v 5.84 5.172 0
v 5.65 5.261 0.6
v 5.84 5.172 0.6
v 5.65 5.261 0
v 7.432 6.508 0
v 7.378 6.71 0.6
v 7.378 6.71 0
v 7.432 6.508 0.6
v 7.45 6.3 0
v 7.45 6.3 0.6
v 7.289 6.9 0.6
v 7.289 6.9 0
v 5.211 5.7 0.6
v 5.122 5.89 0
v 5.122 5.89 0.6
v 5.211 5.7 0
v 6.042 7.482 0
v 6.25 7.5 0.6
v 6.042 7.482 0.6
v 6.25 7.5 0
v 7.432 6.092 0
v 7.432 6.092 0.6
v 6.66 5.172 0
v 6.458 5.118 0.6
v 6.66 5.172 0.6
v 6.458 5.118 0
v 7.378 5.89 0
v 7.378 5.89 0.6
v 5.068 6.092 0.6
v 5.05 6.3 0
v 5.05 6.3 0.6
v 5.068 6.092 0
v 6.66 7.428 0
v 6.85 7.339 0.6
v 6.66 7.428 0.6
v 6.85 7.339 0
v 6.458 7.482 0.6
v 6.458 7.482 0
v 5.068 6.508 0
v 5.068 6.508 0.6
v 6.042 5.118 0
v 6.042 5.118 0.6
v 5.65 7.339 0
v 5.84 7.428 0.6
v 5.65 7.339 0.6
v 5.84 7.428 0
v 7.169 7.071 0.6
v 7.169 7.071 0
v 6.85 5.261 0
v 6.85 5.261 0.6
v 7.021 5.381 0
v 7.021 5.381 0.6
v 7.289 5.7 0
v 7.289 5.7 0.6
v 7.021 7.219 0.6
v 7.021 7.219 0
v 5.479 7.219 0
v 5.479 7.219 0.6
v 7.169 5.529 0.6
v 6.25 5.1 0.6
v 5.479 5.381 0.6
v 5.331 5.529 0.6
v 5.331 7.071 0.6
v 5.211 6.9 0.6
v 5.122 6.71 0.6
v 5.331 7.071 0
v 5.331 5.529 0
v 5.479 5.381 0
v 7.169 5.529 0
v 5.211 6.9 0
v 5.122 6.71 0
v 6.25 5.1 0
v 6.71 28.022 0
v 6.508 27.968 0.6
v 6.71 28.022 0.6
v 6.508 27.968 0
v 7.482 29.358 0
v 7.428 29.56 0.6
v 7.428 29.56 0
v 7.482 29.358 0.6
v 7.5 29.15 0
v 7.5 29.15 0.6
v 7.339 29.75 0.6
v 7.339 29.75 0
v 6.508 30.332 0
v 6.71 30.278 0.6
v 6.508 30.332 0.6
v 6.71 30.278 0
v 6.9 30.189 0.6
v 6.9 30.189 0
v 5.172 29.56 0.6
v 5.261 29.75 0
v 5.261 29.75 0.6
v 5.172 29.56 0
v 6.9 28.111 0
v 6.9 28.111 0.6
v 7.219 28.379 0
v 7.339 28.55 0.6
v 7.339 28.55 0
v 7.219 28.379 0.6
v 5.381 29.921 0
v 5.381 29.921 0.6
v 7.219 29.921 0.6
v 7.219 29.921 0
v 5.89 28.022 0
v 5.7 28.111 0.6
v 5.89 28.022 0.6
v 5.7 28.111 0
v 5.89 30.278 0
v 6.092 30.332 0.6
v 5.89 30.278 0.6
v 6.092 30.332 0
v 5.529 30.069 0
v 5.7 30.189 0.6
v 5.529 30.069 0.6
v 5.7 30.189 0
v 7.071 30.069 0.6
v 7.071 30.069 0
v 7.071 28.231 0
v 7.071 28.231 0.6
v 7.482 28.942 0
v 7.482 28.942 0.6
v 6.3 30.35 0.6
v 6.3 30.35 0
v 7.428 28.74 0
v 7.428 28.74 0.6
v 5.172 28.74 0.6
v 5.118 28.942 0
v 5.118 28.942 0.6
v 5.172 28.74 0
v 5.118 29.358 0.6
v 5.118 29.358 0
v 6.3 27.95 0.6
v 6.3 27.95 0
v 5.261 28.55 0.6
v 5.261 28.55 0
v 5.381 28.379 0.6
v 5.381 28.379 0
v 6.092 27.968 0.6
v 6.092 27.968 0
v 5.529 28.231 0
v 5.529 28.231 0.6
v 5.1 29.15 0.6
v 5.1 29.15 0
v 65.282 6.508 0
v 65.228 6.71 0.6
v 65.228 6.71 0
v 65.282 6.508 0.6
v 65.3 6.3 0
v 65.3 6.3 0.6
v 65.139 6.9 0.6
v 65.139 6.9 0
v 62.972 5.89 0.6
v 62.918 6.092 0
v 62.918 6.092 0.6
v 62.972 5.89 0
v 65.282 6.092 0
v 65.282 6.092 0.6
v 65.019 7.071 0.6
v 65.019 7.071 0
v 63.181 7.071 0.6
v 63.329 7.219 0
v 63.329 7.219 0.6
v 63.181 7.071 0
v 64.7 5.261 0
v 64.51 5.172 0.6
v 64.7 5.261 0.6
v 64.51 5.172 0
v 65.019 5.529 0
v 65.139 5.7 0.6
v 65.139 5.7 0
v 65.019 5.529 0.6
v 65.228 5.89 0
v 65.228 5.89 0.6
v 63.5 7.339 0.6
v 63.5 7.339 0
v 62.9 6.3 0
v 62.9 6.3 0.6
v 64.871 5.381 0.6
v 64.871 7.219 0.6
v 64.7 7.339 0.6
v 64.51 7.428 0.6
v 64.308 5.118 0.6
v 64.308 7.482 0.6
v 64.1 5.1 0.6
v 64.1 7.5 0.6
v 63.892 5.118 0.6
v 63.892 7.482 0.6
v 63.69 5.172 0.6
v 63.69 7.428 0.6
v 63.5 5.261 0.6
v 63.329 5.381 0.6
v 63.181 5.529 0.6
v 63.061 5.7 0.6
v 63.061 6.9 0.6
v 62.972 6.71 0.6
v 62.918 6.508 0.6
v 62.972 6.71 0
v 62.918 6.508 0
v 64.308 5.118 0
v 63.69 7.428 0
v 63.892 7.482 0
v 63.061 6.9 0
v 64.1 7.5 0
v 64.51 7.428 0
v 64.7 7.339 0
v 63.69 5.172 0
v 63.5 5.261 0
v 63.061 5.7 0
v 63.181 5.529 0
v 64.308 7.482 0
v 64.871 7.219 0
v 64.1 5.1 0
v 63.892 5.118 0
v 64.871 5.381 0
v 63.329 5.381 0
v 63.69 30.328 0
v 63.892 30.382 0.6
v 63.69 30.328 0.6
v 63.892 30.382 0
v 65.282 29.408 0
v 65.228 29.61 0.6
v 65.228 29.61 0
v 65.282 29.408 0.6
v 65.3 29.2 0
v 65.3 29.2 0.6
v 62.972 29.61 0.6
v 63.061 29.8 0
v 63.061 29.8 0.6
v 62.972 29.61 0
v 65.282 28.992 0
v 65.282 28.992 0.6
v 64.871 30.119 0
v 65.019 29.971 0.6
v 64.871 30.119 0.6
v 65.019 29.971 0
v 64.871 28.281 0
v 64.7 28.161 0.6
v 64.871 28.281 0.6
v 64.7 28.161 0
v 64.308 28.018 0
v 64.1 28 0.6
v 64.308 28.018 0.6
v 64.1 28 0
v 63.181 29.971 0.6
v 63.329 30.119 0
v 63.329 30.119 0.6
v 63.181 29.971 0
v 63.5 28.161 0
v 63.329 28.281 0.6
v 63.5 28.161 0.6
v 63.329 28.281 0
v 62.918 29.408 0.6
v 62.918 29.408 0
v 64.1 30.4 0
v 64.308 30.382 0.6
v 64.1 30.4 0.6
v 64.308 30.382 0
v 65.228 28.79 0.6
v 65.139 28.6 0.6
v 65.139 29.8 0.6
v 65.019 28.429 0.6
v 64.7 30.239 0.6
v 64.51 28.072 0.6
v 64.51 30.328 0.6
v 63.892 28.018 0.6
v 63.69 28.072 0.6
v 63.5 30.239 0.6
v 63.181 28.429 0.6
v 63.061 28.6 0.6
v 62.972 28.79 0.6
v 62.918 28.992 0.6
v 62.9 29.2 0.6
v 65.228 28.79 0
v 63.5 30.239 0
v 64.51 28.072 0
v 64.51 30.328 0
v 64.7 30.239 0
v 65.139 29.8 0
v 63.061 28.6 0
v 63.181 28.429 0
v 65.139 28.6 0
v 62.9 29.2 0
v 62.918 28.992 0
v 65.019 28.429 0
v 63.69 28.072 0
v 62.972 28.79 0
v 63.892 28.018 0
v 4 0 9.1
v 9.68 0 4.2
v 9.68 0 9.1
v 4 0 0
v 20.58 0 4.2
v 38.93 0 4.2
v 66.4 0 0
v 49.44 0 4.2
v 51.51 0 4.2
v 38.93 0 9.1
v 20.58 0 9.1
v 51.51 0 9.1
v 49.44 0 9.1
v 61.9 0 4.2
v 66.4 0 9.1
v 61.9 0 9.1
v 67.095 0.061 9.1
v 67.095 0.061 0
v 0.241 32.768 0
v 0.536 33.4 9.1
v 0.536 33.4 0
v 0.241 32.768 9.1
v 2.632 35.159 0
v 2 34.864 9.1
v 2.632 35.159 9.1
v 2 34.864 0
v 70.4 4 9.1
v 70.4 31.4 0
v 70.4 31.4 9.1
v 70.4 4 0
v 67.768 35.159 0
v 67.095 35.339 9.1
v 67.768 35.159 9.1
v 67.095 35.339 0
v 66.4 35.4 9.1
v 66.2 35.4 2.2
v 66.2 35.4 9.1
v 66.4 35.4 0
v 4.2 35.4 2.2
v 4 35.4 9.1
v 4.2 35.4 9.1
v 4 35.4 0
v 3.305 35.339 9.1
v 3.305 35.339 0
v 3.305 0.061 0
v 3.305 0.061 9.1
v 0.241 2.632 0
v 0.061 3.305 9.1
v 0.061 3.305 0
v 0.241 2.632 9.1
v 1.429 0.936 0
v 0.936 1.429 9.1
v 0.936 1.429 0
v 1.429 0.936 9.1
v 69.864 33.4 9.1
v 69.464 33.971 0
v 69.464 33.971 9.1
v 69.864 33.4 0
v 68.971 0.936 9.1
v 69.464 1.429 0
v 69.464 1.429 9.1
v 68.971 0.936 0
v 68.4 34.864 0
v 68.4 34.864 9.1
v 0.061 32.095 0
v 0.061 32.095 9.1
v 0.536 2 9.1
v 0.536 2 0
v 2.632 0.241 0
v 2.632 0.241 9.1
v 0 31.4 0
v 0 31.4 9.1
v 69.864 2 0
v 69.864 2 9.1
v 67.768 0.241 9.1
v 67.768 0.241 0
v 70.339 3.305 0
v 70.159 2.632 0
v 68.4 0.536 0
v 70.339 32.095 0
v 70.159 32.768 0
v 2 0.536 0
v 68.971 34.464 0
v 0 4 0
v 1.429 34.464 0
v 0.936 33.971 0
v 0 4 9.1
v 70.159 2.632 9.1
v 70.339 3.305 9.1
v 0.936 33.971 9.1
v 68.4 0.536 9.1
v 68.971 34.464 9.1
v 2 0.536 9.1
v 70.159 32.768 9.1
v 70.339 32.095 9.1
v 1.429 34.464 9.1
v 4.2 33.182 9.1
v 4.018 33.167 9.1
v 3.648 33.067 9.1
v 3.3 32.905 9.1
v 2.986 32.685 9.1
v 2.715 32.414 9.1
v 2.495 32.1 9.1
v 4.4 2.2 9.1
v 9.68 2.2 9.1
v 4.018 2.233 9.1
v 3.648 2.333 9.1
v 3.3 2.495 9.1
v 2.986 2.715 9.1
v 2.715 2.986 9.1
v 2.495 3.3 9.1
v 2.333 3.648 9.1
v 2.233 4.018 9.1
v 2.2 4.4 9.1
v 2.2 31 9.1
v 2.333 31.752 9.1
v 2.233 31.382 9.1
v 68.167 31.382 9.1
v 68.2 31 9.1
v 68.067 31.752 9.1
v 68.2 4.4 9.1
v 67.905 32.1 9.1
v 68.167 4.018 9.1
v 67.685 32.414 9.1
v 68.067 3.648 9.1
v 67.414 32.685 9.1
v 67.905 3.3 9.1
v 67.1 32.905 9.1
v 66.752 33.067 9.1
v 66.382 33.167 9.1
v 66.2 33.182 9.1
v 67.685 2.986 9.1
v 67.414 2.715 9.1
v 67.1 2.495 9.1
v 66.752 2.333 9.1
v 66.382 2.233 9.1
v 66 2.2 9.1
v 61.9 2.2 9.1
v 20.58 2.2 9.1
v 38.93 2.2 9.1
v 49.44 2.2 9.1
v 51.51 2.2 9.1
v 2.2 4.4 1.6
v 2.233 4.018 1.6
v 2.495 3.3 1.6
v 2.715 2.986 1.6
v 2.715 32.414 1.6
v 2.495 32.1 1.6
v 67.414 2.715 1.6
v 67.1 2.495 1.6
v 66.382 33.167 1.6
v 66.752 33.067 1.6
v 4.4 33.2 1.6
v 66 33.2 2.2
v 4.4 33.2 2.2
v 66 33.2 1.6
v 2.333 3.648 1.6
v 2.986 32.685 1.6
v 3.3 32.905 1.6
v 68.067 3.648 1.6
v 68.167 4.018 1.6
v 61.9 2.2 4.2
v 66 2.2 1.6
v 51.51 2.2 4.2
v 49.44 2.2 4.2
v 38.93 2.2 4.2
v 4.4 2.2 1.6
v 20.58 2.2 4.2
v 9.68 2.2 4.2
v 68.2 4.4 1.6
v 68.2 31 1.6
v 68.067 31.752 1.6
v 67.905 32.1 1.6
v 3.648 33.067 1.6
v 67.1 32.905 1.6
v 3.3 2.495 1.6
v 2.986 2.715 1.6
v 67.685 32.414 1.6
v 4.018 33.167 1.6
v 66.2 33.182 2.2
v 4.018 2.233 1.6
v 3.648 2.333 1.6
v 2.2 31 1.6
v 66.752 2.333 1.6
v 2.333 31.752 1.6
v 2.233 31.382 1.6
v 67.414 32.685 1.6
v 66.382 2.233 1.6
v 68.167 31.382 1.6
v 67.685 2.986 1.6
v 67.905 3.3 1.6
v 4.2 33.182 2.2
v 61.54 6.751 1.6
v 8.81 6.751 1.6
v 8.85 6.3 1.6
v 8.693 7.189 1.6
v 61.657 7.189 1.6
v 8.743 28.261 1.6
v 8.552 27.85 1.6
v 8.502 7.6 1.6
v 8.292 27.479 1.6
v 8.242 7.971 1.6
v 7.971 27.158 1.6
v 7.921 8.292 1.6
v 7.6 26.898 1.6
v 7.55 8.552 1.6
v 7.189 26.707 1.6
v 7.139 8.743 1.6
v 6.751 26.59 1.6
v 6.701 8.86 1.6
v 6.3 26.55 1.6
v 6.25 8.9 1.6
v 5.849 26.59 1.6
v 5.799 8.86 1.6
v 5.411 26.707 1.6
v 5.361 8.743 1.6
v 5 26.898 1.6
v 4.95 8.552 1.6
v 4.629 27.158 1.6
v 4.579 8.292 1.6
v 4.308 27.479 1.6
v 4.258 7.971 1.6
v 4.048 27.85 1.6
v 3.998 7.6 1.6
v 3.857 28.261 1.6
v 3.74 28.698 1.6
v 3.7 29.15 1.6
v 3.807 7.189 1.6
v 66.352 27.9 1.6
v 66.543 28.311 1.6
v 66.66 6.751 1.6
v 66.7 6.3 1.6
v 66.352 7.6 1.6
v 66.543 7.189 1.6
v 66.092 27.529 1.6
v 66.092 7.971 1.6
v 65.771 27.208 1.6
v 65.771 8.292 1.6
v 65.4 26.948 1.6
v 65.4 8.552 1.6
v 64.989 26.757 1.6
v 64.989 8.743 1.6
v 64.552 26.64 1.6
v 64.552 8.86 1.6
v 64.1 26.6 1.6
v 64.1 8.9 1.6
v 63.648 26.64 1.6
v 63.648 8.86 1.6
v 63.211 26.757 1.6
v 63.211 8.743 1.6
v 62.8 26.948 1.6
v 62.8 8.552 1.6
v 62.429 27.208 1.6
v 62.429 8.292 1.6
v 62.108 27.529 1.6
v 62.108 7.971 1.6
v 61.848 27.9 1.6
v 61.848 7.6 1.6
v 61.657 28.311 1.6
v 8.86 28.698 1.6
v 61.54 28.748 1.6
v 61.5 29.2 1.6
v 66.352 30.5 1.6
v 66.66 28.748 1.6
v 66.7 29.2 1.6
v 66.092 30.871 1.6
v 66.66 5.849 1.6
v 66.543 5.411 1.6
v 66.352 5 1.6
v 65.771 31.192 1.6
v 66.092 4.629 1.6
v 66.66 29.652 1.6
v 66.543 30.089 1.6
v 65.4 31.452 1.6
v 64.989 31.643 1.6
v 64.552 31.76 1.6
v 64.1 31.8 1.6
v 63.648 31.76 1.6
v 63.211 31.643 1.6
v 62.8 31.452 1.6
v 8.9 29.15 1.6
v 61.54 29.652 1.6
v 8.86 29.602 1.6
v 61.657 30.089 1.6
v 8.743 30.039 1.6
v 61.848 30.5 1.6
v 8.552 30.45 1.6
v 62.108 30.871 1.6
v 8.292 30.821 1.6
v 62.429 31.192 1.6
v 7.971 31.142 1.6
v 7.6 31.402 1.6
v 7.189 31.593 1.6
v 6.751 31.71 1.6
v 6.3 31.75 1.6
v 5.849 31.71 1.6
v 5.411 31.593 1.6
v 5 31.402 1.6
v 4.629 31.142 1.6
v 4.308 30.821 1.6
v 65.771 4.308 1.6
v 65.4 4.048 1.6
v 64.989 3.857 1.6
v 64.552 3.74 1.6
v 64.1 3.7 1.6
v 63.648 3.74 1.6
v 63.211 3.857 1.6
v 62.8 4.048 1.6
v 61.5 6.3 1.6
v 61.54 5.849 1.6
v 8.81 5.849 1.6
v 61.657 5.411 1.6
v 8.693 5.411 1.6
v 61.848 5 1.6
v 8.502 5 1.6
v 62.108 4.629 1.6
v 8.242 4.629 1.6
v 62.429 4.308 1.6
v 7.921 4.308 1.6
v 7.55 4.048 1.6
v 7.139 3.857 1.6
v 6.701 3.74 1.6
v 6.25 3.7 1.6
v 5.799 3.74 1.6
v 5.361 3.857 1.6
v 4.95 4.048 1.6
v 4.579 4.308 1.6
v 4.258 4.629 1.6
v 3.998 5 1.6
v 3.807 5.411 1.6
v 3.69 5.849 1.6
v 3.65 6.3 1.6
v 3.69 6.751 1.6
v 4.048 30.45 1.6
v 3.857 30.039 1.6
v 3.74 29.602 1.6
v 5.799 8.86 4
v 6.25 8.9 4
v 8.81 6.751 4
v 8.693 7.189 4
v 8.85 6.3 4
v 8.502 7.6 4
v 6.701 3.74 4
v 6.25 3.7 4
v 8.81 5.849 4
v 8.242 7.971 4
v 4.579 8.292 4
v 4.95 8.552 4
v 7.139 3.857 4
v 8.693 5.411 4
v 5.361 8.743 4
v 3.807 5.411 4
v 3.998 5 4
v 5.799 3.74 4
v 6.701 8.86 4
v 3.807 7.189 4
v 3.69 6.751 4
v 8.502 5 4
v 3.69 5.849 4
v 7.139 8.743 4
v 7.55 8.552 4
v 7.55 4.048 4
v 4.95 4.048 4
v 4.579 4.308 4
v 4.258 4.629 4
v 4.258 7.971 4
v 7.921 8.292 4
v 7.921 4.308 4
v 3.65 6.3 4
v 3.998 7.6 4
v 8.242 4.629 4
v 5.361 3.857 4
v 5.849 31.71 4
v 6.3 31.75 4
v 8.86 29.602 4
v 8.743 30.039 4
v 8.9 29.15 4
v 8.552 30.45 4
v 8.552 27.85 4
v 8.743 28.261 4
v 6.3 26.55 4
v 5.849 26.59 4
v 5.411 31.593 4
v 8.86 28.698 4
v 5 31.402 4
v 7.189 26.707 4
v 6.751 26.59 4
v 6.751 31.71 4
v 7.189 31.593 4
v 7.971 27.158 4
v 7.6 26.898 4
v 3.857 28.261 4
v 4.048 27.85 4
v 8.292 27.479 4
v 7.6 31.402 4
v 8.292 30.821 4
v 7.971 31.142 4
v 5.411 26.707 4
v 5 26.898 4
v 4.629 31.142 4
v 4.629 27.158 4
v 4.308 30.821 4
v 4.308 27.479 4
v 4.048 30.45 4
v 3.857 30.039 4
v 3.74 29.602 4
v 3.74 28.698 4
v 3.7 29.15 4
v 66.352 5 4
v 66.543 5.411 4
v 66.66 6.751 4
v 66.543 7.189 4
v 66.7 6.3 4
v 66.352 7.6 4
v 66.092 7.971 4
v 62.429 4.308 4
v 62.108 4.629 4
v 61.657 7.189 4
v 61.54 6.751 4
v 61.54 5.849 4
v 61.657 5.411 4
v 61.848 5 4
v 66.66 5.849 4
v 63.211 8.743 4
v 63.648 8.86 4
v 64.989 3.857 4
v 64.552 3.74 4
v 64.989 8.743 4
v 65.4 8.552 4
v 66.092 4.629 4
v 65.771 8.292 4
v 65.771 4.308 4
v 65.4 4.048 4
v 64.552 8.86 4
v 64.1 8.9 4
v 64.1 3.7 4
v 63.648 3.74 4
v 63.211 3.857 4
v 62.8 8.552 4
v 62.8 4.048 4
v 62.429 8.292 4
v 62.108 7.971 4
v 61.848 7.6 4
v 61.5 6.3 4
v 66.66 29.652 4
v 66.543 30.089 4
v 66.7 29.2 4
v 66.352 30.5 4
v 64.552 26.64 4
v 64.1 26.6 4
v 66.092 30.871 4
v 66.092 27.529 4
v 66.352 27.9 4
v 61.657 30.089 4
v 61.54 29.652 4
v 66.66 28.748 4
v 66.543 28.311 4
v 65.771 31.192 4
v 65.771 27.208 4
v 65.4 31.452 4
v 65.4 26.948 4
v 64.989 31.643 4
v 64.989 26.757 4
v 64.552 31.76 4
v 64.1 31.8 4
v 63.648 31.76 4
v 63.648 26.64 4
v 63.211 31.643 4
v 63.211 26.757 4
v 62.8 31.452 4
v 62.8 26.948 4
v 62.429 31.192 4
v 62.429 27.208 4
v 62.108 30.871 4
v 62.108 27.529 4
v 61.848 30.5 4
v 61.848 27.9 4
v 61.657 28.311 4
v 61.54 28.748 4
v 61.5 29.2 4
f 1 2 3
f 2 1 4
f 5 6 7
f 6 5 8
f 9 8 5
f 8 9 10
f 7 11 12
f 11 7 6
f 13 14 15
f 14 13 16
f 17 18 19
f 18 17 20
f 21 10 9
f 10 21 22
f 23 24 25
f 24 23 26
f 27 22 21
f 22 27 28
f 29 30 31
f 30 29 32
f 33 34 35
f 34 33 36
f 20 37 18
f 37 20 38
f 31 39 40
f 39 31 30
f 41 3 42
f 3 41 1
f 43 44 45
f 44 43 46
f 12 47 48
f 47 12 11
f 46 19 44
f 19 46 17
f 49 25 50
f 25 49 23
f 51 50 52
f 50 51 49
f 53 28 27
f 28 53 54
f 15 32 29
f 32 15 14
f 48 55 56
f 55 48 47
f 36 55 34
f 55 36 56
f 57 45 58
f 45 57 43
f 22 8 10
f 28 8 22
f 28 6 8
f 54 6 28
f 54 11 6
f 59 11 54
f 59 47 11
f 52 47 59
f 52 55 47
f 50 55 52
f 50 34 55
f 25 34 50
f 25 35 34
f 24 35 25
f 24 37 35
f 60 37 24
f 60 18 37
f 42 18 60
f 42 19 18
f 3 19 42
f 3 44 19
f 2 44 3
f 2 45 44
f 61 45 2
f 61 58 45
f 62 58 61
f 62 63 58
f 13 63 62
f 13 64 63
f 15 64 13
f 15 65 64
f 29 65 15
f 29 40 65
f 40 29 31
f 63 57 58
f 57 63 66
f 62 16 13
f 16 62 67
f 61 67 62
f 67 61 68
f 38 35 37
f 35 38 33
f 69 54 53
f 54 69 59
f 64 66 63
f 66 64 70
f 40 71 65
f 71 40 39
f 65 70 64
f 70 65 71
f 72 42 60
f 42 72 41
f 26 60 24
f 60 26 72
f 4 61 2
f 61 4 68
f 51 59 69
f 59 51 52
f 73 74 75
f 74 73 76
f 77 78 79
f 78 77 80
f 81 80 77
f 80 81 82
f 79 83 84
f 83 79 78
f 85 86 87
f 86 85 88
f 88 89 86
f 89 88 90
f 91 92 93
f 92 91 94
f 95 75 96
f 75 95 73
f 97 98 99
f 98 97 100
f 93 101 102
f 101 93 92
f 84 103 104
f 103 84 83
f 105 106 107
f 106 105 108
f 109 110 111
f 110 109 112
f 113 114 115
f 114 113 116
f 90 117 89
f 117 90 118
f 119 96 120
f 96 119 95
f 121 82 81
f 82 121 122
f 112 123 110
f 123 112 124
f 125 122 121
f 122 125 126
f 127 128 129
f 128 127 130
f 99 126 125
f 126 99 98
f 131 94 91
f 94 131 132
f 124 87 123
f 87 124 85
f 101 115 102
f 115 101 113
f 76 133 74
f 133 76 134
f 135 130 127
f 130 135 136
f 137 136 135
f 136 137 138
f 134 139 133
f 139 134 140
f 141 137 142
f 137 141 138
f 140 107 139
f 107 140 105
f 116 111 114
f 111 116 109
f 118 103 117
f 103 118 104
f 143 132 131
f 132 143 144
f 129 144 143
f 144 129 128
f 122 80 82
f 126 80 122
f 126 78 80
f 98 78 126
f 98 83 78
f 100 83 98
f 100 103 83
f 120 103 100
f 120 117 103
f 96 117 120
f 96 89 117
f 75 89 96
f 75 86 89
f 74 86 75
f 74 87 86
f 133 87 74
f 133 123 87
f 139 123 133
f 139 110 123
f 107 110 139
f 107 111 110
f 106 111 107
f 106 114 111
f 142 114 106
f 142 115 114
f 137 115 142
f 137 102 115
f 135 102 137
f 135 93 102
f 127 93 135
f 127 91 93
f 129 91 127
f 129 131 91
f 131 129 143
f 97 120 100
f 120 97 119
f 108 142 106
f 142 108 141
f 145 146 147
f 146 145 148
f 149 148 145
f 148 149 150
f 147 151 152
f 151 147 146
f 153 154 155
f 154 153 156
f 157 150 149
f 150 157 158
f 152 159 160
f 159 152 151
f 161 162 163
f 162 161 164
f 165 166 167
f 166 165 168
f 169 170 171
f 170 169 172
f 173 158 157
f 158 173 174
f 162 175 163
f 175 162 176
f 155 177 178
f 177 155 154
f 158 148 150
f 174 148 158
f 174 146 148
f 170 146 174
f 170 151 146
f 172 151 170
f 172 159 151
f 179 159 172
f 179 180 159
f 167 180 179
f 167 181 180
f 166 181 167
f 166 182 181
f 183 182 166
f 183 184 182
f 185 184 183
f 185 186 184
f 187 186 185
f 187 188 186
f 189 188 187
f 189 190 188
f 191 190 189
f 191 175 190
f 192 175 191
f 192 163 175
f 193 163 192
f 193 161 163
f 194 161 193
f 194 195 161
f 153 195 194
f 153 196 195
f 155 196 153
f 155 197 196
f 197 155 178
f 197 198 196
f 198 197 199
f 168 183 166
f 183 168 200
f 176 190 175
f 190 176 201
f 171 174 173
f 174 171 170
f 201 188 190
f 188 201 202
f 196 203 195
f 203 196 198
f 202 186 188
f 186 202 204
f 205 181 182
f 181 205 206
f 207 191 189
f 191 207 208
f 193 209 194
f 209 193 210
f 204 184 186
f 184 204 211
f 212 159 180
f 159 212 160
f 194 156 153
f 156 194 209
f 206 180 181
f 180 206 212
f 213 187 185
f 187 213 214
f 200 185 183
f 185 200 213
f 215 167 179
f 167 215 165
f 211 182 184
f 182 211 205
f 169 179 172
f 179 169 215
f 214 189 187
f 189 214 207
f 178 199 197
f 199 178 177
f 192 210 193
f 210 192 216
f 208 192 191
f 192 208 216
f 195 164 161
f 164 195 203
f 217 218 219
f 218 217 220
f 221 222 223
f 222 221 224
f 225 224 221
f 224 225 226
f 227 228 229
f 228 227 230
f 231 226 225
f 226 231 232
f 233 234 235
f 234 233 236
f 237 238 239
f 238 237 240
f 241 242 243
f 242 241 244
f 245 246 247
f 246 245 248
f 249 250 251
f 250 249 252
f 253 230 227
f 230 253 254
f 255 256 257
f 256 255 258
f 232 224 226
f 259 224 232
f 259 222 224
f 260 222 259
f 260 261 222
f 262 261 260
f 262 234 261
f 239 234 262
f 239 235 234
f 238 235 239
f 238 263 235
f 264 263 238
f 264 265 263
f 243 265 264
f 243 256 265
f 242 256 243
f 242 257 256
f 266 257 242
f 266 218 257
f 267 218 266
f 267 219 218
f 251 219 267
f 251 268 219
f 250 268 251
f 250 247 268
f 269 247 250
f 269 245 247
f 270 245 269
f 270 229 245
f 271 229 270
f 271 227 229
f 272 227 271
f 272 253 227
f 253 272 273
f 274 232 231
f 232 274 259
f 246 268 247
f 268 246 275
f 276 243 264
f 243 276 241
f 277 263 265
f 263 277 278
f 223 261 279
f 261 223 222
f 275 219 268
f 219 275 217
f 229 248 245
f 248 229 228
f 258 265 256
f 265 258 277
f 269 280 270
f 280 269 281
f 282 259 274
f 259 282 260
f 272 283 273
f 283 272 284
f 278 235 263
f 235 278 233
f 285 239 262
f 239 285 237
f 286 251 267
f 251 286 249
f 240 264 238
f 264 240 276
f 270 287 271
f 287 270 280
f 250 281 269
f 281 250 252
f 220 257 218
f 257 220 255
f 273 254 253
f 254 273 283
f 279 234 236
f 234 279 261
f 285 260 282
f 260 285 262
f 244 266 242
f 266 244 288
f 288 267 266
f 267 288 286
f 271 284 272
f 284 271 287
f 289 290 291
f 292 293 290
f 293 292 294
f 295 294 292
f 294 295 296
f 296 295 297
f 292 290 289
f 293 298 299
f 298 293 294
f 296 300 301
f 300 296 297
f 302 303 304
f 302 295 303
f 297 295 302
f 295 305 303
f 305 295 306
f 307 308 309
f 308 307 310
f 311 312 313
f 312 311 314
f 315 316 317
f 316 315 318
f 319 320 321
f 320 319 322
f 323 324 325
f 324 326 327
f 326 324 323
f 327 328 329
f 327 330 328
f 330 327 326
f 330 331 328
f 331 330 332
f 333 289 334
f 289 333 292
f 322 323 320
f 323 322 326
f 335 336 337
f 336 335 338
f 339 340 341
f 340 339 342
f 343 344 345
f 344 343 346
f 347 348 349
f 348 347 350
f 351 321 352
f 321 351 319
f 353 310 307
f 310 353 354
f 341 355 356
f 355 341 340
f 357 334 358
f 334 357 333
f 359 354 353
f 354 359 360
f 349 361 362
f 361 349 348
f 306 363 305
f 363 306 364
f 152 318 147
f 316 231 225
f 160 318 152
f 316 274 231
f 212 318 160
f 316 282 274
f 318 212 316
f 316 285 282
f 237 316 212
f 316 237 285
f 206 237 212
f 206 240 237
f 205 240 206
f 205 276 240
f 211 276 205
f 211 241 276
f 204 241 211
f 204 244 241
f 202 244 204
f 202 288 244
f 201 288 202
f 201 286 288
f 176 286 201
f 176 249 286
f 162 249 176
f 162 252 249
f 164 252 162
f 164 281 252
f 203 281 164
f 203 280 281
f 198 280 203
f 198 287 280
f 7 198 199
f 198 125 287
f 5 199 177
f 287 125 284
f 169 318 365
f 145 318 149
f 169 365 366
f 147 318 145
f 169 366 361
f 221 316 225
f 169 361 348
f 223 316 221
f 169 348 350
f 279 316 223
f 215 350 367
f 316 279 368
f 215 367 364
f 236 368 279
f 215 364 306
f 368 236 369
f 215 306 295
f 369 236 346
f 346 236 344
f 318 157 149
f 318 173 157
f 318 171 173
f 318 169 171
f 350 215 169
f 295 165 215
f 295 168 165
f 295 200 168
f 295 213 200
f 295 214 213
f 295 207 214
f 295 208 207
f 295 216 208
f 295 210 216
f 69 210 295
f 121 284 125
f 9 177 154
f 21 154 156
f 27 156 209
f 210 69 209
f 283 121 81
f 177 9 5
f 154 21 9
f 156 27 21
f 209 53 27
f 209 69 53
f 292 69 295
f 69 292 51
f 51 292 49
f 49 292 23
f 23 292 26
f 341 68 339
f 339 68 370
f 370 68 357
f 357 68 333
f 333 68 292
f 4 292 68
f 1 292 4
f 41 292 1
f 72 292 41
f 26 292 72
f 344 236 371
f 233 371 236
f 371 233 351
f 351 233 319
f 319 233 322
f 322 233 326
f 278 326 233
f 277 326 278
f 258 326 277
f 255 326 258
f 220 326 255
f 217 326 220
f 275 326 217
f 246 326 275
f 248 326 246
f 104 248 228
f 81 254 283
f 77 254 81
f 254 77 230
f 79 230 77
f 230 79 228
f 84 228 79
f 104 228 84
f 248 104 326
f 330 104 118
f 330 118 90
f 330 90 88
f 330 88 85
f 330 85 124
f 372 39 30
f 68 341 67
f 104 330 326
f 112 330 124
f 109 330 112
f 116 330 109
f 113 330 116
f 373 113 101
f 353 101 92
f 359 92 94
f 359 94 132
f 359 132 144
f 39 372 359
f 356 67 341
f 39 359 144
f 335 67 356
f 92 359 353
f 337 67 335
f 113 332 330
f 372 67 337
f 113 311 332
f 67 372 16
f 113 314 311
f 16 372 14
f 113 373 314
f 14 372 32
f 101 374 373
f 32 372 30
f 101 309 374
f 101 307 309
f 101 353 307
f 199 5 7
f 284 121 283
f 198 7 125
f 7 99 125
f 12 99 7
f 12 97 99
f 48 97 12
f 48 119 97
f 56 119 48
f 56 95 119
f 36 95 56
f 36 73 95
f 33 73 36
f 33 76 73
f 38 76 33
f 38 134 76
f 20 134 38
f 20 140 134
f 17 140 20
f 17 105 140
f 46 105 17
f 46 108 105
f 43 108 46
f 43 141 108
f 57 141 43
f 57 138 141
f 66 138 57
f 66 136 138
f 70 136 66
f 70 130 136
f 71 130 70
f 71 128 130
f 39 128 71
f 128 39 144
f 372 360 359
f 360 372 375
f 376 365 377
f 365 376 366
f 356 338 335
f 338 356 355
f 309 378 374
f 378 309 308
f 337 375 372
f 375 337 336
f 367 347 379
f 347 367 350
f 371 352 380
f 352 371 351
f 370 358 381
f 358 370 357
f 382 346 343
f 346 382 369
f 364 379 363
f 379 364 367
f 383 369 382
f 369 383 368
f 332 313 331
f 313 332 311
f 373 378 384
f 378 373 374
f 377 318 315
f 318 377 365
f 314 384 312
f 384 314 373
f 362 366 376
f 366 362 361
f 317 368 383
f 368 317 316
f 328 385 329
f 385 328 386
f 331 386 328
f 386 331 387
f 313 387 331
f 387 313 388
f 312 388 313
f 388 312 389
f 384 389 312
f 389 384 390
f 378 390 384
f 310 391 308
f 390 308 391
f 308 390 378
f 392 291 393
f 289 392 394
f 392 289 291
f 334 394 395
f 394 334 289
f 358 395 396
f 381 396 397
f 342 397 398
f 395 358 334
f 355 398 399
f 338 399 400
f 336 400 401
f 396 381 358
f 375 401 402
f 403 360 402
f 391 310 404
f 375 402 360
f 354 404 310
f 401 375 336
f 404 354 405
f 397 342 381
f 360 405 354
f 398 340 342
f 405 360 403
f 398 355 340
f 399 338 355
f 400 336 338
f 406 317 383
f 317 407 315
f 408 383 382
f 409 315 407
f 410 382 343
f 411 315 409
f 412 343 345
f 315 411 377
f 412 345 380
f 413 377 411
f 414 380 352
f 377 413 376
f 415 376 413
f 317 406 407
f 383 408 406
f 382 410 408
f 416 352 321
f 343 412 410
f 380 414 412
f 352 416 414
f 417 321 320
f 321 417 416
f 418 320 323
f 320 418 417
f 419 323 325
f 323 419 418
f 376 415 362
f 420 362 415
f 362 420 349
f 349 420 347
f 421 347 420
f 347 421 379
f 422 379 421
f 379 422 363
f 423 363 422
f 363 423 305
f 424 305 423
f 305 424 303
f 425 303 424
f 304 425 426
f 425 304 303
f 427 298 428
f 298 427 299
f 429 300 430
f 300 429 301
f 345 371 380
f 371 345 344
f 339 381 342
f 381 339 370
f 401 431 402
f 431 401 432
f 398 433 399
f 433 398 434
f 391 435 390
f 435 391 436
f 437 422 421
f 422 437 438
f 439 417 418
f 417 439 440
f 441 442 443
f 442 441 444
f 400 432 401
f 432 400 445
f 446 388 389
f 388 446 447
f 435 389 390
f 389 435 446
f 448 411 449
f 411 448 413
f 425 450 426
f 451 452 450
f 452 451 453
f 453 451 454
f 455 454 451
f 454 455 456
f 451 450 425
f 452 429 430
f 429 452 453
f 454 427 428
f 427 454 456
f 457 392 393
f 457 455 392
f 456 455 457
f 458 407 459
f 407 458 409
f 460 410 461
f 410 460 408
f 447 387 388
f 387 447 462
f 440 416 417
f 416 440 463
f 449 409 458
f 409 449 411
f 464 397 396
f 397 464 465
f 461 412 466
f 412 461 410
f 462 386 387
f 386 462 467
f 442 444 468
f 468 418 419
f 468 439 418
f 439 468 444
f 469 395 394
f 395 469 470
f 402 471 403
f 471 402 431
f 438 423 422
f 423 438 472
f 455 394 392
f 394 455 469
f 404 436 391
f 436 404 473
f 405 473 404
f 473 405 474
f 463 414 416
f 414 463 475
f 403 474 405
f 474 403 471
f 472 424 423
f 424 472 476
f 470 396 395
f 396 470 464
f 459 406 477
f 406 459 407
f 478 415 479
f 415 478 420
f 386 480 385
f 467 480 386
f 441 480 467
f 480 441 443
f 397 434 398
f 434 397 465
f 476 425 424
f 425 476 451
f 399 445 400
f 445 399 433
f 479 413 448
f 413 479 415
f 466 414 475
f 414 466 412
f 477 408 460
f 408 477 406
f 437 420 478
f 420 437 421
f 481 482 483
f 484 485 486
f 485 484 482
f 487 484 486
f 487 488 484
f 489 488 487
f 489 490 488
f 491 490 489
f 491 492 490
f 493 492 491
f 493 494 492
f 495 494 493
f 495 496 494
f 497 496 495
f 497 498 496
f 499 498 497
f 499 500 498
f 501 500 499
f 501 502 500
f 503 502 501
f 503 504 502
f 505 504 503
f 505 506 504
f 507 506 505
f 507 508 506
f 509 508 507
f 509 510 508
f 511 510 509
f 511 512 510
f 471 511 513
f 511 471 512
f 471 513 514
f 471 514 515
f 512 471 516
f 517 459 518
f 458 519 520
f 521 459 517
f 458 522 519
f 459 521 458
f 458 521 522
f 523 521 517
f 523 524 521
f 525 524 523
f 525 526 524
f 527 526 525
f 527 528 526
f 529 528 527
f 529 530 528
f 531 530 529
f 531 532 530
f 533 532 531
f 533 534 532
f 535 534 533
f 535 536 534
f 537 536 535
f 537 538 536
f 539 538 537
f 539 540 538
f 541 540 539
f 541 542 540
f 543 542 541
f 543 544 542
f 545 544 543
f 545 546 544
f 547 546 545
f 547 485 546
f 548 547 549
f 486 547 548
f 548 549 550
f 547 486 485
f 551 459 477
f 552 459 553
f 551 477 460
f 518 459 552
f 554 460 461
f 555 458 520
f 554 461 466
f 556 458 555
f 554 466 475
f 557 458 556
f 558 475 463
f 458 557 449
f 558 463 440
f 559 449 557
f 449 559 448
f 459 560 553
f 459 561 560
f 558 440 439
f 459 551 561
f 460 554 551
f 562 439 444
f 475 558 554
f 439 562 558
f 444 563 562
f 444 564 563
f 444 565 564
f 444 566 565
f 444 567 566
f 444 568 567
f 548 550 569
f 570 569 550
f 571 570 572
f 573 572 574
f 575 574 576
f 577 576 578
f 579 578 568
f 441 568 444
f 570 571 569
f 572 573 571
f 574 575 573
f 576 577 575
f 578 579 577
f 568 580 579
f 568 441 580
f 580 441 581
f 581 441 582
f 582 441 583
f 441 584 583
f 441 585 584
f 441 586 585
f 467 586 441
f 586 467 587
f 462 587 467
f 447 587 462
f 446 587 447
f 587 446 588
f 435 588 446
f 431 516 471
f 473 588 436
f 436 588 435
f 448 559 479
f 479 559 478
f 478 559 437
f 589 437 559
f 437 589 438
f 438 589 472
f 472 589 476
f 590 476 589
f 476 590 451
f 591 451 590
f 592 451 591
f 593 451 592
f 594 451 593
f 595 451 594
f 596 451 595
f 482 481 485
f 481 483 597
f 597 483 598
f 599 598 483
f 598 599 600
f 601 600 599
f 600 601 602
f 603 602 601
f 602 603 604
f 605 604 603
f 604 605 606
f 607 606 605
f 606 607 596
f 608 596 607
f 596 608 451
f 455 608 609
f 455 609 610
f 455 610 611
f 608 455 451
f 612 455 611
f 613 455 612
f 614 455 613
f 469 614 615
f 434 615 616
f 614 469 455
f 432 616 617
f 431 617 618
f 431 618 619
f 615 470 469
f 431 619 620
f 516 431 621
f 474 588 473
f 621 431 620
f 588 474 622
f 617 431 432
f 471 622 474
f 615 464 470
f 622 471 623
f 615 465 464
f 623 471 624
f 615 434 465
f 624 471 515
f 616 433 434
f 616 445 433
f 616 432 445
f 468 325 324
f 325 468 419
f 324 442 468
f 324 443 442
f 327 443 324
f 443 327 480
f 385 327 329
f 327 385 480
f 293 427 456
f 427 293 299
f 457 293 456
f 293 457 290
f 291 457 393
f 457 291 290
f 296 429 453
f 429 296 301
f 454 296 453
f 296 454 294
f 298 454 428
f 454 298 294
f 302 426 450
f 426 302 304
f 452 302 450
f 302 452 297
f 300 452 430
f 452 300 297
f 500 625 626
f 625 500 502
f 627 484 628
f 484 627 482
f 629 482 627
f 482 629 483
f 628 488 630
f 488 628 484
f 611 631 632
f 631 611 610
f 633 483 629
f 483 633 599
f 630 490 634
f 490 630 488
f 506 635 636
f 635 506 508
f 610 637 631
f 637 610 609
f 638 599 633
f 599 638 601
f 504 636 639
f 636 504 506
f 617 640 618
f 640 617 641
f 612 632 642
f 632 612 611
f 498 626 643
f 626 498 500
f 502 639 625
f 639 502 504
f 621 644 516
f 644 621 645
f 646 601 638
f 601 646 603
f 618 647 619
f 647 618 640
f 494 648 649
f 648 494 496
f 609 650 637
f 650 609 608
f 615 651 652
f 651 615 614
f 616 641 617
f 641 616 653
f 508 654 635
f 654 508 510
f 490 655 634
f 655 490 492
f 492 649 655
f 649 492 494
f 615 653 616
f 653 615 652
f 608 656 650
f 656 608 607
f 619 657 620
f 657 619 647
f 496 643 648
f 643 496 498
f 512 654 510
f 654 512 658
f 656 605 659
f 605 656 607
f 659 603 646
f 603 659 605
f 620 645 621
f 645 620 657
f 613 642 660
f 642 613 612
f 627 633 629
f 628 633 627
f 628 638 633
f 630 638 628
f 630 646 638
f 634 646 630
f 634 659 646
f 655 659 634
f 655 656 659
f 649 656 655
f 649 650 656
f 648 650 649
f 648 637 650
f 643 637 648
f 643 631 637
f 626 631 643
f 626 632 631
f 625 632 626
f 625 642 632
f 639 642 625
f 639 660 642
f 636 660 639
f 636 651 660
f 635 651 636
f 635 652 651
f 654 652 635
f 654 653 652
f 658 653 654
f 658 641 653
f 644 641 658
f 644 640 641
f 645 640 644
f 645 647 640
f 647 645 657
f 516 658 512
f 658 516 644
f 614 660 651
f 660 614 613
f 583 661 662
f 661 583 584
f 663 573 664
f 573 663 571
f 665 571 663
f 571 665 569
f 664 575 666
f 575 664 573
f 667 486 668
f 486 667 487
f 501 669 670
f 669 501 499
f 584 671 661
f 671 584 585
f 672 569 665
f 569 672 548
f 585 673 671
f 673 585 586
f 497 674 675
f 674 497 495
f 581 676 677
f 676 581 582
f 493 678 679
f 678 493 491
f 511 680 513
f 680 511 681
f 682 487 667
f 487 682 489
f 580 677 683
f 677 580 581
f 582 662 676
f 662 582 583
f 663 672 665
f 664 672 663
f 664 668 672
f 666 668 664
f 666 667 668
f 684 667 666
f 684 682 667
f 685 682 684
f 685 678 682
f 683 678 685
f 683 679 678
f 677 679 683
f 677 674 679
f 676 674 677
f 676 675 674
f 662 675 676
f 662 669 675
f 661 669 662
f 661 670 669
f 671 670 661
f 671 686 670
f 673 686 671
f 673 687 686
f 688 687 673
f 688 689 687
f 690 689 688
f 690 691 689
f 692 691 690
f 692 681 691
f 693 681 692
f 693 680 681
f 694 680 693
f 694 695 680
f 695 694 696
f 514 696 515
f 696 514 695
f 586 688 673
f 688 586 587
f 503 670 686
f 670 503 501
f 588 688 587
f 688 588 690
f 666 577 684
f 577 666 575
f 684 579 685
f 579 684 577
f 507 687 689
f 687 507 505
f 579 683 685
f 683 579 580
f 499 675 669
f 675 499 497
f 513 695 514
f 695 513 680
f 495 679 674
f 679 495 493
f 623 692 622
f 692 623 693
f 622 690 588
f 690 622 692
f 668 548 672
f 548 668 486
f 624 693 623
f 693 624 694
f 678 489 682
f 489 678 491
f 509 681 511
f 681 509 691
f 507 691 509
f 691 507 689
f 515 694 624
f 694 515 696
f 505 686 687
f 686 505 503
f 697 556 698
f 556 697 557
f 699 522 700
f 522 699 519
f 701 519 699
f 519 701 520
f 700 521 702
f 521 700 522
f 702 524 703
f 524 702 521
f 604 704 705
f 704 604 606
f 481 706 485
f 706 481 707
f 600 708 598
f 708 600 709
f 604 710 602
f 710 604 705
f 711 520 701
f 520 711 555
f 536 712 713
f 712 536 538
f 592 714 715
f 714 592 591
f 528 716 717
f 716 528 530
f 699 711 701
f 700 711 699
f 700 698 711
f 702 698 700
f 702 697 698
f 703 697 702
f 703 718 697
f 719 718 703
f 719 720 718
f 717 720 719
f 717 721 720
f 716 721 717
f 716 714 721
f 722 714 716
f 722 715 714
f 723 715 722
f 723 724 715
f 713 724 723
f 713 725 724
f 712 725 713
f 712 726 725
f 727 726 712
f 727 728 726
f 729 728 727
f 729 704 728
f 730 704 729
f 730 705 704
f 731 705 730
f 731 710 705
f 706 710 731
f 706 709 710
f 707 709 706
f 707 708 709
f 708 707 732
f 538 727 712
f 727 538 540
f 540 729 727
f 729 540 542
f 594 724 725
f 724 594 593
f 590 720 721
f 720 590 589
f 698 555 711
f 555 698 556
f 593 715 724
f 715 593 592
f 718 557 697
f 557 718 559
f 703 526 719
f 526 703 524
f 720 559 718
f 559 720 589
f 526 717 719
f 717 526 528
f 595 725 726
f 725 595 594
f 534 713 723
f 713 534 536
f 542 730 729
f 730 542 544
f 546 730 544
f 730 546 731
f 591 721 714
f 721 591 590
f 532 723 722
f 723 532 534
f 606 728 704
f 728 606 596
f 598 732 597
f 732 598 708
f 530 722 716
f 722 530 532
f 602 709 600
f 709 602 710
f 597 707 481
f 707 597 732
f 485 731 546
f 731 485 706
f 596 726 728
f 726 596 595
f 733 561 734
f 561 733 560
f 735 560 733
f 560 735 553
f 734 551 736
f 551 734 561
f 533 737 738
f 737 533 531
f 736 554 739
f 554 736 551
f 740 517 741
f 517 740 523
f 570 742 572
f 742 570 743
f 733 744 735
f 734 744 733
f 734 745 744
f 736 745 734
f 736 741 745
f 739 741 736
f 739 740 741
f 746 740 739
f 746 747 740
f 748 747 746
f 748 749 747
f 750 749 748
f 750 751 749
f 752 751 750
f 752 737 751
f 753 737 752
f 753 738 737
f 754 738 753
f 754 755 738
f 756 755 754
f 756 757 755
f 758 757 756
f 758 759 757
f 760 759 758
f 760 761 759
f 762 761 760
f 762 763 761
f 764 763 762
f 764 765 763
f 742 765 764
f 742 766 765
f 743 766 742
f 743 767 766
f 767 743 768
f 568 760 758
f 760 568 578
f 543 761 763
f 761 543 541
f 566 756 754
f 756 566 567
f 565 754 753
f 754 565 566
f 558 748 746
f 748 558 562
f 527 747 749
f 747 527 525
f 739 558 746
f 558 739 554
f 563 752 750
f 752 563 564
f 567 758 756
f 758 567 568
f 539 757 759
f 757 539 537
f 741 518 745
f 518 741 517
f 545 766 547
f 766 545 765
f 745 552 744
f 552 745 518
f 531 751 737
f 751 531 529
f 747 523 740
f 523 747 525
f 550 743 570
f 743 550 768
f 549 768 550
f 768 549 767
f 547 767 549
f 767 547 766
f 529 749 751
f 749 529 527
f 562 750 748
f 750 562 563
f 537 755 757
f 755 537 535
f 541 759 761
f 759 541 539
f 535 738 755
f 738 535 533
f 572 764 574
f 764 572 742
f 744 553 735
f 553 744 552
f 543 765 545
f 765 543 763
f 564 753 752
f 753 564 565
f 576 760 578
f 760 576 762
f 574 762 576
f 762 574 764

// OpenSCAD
// file: zero3w_board.scad
// Shared Radxa ZERO 3W mechanicals from official v1.11 DXF.
// Origin: HDMI/CSI corner. GPIO along y=30. Ports along y=0.

board_x = 65.0;
board_y = 30.0;
pcb_t   = 1.2;

hole_xy = [
    [ 3.55,  3.60],
    [ 3.60, 26.45],
    [61.40,  3.60],
    [61.40, 26.50]
];

hdmi_x0 =  9.18; hdmi_x1 = 15.68;
usb3_x0 = 36.93; usb3_x1 = 46.04;
otg_x0  = 49.51; otg_x1  = 58.50;

hdmi_cx = (hdmi_x0 + hdmi_x1) / 2;
usb3_cx = (usb3_x0 + usb3_x1) / 2;
otg_cx  = (otg_x0  + otg_x1)  / 2;

gpio_x0 = 7.05;  gpio_x1 = 57.85;
gpio_y0 = 24.14; gpio_y1 = 29.22;

csi_cy = 15.03; csi_len = 17.5;
sd_cy  = 15.00; sd_len  = 12.8;

maskrom_xy = [21.84, 2.20];
ufl_xy     = [63.50, 19.685];
// main file
// 15-minute first print for the Ender 3 V3 SE.
// Open tray: drop the real ZERO 3W in and try the three cables.
// If the plugs line up, print the Hive case. If they don't, stop and
// change port_clear / centers in zero3w_board.scad.

include <zero3w_board.scad>

xy_clear   = 0.5;
port_clear = 0.7;
wall       = 2.2;
floor_t    = 1.6;
under      = 2.4;
tall       = under + pcb_t + 5.5;

$fn = 36;

ix = board_x + 2 * xy_clear;
iy = board_y + 2 * xy_clear;
ox = ix + 2 * wall;
oy = iy + 2 * wall;

function bx(x) = wall + xy_clear + x;
function by(y) = wall + xy_clear + y;

module rounded_cube(size, r) {
    x = size[0]; y = size[1]; z = size[2];
    rr = min(r, x / 2 - 0.05, y / 2 - 0.05);
    hull()
        for (px = [rr, x - rr], py = [rr, y - rr])
            translate([px, py, 0])
                cylinder(h = z, r = rr);
}

z_top = floor_t + under + pcb_t;

difference() {
    rounded_cube([ox, oy, tall], 4.0);
    translate([wall, wall, floor_t])
        rounded_cube([ix, iy, tall], 2.2);
    // open the GPIO side so you can lift the board out
    translate([wall + 2, oy - wall - 0.1, floor_t + 0.6])
        cube([ix - 4, wall + 1, tall]);
    // ports
    usb3_w = (usb3_x1 - usb3_x0) + 2 * port_clear;
    otg_w  = (otg_x1  - otg_x0)  + 2 * port_clear;
    hdmi_w = (hdmi_x1 - hdmi_x0) + 2 * port_clear + 3.0;
    translate([bx(hdmi_cx) - hdmi_w / 2, -0.2, z_top - 1.0])
        cube([hdmi_w, wall + 2, 5.4]);
    translate([bx(usb3_cx) - usb3_w / 2, -0.2, z_top - 1.0])
        cube([usb3_w, wall + 2, 6.6]);
    translate([bx(otg_cx) - otg_w / 2, -0.2, z_top - 1.0])
        cube([otg_w, wall + 2, 6.6]);
    // hole dimples so you can see if the board sits on the DXF holes
    for (p = hole_xy)
        translate([bx(p[0]), by(p[1]), -0.1])
            cylinder(h = 0.7, d = 2.4);
}

// tiny posts to rest the PCB on
for (p = hole_xy)
    translate([bx(p[0]), by(p[1]), floor_t])
        cylinder(h = under, d = 5.2);
